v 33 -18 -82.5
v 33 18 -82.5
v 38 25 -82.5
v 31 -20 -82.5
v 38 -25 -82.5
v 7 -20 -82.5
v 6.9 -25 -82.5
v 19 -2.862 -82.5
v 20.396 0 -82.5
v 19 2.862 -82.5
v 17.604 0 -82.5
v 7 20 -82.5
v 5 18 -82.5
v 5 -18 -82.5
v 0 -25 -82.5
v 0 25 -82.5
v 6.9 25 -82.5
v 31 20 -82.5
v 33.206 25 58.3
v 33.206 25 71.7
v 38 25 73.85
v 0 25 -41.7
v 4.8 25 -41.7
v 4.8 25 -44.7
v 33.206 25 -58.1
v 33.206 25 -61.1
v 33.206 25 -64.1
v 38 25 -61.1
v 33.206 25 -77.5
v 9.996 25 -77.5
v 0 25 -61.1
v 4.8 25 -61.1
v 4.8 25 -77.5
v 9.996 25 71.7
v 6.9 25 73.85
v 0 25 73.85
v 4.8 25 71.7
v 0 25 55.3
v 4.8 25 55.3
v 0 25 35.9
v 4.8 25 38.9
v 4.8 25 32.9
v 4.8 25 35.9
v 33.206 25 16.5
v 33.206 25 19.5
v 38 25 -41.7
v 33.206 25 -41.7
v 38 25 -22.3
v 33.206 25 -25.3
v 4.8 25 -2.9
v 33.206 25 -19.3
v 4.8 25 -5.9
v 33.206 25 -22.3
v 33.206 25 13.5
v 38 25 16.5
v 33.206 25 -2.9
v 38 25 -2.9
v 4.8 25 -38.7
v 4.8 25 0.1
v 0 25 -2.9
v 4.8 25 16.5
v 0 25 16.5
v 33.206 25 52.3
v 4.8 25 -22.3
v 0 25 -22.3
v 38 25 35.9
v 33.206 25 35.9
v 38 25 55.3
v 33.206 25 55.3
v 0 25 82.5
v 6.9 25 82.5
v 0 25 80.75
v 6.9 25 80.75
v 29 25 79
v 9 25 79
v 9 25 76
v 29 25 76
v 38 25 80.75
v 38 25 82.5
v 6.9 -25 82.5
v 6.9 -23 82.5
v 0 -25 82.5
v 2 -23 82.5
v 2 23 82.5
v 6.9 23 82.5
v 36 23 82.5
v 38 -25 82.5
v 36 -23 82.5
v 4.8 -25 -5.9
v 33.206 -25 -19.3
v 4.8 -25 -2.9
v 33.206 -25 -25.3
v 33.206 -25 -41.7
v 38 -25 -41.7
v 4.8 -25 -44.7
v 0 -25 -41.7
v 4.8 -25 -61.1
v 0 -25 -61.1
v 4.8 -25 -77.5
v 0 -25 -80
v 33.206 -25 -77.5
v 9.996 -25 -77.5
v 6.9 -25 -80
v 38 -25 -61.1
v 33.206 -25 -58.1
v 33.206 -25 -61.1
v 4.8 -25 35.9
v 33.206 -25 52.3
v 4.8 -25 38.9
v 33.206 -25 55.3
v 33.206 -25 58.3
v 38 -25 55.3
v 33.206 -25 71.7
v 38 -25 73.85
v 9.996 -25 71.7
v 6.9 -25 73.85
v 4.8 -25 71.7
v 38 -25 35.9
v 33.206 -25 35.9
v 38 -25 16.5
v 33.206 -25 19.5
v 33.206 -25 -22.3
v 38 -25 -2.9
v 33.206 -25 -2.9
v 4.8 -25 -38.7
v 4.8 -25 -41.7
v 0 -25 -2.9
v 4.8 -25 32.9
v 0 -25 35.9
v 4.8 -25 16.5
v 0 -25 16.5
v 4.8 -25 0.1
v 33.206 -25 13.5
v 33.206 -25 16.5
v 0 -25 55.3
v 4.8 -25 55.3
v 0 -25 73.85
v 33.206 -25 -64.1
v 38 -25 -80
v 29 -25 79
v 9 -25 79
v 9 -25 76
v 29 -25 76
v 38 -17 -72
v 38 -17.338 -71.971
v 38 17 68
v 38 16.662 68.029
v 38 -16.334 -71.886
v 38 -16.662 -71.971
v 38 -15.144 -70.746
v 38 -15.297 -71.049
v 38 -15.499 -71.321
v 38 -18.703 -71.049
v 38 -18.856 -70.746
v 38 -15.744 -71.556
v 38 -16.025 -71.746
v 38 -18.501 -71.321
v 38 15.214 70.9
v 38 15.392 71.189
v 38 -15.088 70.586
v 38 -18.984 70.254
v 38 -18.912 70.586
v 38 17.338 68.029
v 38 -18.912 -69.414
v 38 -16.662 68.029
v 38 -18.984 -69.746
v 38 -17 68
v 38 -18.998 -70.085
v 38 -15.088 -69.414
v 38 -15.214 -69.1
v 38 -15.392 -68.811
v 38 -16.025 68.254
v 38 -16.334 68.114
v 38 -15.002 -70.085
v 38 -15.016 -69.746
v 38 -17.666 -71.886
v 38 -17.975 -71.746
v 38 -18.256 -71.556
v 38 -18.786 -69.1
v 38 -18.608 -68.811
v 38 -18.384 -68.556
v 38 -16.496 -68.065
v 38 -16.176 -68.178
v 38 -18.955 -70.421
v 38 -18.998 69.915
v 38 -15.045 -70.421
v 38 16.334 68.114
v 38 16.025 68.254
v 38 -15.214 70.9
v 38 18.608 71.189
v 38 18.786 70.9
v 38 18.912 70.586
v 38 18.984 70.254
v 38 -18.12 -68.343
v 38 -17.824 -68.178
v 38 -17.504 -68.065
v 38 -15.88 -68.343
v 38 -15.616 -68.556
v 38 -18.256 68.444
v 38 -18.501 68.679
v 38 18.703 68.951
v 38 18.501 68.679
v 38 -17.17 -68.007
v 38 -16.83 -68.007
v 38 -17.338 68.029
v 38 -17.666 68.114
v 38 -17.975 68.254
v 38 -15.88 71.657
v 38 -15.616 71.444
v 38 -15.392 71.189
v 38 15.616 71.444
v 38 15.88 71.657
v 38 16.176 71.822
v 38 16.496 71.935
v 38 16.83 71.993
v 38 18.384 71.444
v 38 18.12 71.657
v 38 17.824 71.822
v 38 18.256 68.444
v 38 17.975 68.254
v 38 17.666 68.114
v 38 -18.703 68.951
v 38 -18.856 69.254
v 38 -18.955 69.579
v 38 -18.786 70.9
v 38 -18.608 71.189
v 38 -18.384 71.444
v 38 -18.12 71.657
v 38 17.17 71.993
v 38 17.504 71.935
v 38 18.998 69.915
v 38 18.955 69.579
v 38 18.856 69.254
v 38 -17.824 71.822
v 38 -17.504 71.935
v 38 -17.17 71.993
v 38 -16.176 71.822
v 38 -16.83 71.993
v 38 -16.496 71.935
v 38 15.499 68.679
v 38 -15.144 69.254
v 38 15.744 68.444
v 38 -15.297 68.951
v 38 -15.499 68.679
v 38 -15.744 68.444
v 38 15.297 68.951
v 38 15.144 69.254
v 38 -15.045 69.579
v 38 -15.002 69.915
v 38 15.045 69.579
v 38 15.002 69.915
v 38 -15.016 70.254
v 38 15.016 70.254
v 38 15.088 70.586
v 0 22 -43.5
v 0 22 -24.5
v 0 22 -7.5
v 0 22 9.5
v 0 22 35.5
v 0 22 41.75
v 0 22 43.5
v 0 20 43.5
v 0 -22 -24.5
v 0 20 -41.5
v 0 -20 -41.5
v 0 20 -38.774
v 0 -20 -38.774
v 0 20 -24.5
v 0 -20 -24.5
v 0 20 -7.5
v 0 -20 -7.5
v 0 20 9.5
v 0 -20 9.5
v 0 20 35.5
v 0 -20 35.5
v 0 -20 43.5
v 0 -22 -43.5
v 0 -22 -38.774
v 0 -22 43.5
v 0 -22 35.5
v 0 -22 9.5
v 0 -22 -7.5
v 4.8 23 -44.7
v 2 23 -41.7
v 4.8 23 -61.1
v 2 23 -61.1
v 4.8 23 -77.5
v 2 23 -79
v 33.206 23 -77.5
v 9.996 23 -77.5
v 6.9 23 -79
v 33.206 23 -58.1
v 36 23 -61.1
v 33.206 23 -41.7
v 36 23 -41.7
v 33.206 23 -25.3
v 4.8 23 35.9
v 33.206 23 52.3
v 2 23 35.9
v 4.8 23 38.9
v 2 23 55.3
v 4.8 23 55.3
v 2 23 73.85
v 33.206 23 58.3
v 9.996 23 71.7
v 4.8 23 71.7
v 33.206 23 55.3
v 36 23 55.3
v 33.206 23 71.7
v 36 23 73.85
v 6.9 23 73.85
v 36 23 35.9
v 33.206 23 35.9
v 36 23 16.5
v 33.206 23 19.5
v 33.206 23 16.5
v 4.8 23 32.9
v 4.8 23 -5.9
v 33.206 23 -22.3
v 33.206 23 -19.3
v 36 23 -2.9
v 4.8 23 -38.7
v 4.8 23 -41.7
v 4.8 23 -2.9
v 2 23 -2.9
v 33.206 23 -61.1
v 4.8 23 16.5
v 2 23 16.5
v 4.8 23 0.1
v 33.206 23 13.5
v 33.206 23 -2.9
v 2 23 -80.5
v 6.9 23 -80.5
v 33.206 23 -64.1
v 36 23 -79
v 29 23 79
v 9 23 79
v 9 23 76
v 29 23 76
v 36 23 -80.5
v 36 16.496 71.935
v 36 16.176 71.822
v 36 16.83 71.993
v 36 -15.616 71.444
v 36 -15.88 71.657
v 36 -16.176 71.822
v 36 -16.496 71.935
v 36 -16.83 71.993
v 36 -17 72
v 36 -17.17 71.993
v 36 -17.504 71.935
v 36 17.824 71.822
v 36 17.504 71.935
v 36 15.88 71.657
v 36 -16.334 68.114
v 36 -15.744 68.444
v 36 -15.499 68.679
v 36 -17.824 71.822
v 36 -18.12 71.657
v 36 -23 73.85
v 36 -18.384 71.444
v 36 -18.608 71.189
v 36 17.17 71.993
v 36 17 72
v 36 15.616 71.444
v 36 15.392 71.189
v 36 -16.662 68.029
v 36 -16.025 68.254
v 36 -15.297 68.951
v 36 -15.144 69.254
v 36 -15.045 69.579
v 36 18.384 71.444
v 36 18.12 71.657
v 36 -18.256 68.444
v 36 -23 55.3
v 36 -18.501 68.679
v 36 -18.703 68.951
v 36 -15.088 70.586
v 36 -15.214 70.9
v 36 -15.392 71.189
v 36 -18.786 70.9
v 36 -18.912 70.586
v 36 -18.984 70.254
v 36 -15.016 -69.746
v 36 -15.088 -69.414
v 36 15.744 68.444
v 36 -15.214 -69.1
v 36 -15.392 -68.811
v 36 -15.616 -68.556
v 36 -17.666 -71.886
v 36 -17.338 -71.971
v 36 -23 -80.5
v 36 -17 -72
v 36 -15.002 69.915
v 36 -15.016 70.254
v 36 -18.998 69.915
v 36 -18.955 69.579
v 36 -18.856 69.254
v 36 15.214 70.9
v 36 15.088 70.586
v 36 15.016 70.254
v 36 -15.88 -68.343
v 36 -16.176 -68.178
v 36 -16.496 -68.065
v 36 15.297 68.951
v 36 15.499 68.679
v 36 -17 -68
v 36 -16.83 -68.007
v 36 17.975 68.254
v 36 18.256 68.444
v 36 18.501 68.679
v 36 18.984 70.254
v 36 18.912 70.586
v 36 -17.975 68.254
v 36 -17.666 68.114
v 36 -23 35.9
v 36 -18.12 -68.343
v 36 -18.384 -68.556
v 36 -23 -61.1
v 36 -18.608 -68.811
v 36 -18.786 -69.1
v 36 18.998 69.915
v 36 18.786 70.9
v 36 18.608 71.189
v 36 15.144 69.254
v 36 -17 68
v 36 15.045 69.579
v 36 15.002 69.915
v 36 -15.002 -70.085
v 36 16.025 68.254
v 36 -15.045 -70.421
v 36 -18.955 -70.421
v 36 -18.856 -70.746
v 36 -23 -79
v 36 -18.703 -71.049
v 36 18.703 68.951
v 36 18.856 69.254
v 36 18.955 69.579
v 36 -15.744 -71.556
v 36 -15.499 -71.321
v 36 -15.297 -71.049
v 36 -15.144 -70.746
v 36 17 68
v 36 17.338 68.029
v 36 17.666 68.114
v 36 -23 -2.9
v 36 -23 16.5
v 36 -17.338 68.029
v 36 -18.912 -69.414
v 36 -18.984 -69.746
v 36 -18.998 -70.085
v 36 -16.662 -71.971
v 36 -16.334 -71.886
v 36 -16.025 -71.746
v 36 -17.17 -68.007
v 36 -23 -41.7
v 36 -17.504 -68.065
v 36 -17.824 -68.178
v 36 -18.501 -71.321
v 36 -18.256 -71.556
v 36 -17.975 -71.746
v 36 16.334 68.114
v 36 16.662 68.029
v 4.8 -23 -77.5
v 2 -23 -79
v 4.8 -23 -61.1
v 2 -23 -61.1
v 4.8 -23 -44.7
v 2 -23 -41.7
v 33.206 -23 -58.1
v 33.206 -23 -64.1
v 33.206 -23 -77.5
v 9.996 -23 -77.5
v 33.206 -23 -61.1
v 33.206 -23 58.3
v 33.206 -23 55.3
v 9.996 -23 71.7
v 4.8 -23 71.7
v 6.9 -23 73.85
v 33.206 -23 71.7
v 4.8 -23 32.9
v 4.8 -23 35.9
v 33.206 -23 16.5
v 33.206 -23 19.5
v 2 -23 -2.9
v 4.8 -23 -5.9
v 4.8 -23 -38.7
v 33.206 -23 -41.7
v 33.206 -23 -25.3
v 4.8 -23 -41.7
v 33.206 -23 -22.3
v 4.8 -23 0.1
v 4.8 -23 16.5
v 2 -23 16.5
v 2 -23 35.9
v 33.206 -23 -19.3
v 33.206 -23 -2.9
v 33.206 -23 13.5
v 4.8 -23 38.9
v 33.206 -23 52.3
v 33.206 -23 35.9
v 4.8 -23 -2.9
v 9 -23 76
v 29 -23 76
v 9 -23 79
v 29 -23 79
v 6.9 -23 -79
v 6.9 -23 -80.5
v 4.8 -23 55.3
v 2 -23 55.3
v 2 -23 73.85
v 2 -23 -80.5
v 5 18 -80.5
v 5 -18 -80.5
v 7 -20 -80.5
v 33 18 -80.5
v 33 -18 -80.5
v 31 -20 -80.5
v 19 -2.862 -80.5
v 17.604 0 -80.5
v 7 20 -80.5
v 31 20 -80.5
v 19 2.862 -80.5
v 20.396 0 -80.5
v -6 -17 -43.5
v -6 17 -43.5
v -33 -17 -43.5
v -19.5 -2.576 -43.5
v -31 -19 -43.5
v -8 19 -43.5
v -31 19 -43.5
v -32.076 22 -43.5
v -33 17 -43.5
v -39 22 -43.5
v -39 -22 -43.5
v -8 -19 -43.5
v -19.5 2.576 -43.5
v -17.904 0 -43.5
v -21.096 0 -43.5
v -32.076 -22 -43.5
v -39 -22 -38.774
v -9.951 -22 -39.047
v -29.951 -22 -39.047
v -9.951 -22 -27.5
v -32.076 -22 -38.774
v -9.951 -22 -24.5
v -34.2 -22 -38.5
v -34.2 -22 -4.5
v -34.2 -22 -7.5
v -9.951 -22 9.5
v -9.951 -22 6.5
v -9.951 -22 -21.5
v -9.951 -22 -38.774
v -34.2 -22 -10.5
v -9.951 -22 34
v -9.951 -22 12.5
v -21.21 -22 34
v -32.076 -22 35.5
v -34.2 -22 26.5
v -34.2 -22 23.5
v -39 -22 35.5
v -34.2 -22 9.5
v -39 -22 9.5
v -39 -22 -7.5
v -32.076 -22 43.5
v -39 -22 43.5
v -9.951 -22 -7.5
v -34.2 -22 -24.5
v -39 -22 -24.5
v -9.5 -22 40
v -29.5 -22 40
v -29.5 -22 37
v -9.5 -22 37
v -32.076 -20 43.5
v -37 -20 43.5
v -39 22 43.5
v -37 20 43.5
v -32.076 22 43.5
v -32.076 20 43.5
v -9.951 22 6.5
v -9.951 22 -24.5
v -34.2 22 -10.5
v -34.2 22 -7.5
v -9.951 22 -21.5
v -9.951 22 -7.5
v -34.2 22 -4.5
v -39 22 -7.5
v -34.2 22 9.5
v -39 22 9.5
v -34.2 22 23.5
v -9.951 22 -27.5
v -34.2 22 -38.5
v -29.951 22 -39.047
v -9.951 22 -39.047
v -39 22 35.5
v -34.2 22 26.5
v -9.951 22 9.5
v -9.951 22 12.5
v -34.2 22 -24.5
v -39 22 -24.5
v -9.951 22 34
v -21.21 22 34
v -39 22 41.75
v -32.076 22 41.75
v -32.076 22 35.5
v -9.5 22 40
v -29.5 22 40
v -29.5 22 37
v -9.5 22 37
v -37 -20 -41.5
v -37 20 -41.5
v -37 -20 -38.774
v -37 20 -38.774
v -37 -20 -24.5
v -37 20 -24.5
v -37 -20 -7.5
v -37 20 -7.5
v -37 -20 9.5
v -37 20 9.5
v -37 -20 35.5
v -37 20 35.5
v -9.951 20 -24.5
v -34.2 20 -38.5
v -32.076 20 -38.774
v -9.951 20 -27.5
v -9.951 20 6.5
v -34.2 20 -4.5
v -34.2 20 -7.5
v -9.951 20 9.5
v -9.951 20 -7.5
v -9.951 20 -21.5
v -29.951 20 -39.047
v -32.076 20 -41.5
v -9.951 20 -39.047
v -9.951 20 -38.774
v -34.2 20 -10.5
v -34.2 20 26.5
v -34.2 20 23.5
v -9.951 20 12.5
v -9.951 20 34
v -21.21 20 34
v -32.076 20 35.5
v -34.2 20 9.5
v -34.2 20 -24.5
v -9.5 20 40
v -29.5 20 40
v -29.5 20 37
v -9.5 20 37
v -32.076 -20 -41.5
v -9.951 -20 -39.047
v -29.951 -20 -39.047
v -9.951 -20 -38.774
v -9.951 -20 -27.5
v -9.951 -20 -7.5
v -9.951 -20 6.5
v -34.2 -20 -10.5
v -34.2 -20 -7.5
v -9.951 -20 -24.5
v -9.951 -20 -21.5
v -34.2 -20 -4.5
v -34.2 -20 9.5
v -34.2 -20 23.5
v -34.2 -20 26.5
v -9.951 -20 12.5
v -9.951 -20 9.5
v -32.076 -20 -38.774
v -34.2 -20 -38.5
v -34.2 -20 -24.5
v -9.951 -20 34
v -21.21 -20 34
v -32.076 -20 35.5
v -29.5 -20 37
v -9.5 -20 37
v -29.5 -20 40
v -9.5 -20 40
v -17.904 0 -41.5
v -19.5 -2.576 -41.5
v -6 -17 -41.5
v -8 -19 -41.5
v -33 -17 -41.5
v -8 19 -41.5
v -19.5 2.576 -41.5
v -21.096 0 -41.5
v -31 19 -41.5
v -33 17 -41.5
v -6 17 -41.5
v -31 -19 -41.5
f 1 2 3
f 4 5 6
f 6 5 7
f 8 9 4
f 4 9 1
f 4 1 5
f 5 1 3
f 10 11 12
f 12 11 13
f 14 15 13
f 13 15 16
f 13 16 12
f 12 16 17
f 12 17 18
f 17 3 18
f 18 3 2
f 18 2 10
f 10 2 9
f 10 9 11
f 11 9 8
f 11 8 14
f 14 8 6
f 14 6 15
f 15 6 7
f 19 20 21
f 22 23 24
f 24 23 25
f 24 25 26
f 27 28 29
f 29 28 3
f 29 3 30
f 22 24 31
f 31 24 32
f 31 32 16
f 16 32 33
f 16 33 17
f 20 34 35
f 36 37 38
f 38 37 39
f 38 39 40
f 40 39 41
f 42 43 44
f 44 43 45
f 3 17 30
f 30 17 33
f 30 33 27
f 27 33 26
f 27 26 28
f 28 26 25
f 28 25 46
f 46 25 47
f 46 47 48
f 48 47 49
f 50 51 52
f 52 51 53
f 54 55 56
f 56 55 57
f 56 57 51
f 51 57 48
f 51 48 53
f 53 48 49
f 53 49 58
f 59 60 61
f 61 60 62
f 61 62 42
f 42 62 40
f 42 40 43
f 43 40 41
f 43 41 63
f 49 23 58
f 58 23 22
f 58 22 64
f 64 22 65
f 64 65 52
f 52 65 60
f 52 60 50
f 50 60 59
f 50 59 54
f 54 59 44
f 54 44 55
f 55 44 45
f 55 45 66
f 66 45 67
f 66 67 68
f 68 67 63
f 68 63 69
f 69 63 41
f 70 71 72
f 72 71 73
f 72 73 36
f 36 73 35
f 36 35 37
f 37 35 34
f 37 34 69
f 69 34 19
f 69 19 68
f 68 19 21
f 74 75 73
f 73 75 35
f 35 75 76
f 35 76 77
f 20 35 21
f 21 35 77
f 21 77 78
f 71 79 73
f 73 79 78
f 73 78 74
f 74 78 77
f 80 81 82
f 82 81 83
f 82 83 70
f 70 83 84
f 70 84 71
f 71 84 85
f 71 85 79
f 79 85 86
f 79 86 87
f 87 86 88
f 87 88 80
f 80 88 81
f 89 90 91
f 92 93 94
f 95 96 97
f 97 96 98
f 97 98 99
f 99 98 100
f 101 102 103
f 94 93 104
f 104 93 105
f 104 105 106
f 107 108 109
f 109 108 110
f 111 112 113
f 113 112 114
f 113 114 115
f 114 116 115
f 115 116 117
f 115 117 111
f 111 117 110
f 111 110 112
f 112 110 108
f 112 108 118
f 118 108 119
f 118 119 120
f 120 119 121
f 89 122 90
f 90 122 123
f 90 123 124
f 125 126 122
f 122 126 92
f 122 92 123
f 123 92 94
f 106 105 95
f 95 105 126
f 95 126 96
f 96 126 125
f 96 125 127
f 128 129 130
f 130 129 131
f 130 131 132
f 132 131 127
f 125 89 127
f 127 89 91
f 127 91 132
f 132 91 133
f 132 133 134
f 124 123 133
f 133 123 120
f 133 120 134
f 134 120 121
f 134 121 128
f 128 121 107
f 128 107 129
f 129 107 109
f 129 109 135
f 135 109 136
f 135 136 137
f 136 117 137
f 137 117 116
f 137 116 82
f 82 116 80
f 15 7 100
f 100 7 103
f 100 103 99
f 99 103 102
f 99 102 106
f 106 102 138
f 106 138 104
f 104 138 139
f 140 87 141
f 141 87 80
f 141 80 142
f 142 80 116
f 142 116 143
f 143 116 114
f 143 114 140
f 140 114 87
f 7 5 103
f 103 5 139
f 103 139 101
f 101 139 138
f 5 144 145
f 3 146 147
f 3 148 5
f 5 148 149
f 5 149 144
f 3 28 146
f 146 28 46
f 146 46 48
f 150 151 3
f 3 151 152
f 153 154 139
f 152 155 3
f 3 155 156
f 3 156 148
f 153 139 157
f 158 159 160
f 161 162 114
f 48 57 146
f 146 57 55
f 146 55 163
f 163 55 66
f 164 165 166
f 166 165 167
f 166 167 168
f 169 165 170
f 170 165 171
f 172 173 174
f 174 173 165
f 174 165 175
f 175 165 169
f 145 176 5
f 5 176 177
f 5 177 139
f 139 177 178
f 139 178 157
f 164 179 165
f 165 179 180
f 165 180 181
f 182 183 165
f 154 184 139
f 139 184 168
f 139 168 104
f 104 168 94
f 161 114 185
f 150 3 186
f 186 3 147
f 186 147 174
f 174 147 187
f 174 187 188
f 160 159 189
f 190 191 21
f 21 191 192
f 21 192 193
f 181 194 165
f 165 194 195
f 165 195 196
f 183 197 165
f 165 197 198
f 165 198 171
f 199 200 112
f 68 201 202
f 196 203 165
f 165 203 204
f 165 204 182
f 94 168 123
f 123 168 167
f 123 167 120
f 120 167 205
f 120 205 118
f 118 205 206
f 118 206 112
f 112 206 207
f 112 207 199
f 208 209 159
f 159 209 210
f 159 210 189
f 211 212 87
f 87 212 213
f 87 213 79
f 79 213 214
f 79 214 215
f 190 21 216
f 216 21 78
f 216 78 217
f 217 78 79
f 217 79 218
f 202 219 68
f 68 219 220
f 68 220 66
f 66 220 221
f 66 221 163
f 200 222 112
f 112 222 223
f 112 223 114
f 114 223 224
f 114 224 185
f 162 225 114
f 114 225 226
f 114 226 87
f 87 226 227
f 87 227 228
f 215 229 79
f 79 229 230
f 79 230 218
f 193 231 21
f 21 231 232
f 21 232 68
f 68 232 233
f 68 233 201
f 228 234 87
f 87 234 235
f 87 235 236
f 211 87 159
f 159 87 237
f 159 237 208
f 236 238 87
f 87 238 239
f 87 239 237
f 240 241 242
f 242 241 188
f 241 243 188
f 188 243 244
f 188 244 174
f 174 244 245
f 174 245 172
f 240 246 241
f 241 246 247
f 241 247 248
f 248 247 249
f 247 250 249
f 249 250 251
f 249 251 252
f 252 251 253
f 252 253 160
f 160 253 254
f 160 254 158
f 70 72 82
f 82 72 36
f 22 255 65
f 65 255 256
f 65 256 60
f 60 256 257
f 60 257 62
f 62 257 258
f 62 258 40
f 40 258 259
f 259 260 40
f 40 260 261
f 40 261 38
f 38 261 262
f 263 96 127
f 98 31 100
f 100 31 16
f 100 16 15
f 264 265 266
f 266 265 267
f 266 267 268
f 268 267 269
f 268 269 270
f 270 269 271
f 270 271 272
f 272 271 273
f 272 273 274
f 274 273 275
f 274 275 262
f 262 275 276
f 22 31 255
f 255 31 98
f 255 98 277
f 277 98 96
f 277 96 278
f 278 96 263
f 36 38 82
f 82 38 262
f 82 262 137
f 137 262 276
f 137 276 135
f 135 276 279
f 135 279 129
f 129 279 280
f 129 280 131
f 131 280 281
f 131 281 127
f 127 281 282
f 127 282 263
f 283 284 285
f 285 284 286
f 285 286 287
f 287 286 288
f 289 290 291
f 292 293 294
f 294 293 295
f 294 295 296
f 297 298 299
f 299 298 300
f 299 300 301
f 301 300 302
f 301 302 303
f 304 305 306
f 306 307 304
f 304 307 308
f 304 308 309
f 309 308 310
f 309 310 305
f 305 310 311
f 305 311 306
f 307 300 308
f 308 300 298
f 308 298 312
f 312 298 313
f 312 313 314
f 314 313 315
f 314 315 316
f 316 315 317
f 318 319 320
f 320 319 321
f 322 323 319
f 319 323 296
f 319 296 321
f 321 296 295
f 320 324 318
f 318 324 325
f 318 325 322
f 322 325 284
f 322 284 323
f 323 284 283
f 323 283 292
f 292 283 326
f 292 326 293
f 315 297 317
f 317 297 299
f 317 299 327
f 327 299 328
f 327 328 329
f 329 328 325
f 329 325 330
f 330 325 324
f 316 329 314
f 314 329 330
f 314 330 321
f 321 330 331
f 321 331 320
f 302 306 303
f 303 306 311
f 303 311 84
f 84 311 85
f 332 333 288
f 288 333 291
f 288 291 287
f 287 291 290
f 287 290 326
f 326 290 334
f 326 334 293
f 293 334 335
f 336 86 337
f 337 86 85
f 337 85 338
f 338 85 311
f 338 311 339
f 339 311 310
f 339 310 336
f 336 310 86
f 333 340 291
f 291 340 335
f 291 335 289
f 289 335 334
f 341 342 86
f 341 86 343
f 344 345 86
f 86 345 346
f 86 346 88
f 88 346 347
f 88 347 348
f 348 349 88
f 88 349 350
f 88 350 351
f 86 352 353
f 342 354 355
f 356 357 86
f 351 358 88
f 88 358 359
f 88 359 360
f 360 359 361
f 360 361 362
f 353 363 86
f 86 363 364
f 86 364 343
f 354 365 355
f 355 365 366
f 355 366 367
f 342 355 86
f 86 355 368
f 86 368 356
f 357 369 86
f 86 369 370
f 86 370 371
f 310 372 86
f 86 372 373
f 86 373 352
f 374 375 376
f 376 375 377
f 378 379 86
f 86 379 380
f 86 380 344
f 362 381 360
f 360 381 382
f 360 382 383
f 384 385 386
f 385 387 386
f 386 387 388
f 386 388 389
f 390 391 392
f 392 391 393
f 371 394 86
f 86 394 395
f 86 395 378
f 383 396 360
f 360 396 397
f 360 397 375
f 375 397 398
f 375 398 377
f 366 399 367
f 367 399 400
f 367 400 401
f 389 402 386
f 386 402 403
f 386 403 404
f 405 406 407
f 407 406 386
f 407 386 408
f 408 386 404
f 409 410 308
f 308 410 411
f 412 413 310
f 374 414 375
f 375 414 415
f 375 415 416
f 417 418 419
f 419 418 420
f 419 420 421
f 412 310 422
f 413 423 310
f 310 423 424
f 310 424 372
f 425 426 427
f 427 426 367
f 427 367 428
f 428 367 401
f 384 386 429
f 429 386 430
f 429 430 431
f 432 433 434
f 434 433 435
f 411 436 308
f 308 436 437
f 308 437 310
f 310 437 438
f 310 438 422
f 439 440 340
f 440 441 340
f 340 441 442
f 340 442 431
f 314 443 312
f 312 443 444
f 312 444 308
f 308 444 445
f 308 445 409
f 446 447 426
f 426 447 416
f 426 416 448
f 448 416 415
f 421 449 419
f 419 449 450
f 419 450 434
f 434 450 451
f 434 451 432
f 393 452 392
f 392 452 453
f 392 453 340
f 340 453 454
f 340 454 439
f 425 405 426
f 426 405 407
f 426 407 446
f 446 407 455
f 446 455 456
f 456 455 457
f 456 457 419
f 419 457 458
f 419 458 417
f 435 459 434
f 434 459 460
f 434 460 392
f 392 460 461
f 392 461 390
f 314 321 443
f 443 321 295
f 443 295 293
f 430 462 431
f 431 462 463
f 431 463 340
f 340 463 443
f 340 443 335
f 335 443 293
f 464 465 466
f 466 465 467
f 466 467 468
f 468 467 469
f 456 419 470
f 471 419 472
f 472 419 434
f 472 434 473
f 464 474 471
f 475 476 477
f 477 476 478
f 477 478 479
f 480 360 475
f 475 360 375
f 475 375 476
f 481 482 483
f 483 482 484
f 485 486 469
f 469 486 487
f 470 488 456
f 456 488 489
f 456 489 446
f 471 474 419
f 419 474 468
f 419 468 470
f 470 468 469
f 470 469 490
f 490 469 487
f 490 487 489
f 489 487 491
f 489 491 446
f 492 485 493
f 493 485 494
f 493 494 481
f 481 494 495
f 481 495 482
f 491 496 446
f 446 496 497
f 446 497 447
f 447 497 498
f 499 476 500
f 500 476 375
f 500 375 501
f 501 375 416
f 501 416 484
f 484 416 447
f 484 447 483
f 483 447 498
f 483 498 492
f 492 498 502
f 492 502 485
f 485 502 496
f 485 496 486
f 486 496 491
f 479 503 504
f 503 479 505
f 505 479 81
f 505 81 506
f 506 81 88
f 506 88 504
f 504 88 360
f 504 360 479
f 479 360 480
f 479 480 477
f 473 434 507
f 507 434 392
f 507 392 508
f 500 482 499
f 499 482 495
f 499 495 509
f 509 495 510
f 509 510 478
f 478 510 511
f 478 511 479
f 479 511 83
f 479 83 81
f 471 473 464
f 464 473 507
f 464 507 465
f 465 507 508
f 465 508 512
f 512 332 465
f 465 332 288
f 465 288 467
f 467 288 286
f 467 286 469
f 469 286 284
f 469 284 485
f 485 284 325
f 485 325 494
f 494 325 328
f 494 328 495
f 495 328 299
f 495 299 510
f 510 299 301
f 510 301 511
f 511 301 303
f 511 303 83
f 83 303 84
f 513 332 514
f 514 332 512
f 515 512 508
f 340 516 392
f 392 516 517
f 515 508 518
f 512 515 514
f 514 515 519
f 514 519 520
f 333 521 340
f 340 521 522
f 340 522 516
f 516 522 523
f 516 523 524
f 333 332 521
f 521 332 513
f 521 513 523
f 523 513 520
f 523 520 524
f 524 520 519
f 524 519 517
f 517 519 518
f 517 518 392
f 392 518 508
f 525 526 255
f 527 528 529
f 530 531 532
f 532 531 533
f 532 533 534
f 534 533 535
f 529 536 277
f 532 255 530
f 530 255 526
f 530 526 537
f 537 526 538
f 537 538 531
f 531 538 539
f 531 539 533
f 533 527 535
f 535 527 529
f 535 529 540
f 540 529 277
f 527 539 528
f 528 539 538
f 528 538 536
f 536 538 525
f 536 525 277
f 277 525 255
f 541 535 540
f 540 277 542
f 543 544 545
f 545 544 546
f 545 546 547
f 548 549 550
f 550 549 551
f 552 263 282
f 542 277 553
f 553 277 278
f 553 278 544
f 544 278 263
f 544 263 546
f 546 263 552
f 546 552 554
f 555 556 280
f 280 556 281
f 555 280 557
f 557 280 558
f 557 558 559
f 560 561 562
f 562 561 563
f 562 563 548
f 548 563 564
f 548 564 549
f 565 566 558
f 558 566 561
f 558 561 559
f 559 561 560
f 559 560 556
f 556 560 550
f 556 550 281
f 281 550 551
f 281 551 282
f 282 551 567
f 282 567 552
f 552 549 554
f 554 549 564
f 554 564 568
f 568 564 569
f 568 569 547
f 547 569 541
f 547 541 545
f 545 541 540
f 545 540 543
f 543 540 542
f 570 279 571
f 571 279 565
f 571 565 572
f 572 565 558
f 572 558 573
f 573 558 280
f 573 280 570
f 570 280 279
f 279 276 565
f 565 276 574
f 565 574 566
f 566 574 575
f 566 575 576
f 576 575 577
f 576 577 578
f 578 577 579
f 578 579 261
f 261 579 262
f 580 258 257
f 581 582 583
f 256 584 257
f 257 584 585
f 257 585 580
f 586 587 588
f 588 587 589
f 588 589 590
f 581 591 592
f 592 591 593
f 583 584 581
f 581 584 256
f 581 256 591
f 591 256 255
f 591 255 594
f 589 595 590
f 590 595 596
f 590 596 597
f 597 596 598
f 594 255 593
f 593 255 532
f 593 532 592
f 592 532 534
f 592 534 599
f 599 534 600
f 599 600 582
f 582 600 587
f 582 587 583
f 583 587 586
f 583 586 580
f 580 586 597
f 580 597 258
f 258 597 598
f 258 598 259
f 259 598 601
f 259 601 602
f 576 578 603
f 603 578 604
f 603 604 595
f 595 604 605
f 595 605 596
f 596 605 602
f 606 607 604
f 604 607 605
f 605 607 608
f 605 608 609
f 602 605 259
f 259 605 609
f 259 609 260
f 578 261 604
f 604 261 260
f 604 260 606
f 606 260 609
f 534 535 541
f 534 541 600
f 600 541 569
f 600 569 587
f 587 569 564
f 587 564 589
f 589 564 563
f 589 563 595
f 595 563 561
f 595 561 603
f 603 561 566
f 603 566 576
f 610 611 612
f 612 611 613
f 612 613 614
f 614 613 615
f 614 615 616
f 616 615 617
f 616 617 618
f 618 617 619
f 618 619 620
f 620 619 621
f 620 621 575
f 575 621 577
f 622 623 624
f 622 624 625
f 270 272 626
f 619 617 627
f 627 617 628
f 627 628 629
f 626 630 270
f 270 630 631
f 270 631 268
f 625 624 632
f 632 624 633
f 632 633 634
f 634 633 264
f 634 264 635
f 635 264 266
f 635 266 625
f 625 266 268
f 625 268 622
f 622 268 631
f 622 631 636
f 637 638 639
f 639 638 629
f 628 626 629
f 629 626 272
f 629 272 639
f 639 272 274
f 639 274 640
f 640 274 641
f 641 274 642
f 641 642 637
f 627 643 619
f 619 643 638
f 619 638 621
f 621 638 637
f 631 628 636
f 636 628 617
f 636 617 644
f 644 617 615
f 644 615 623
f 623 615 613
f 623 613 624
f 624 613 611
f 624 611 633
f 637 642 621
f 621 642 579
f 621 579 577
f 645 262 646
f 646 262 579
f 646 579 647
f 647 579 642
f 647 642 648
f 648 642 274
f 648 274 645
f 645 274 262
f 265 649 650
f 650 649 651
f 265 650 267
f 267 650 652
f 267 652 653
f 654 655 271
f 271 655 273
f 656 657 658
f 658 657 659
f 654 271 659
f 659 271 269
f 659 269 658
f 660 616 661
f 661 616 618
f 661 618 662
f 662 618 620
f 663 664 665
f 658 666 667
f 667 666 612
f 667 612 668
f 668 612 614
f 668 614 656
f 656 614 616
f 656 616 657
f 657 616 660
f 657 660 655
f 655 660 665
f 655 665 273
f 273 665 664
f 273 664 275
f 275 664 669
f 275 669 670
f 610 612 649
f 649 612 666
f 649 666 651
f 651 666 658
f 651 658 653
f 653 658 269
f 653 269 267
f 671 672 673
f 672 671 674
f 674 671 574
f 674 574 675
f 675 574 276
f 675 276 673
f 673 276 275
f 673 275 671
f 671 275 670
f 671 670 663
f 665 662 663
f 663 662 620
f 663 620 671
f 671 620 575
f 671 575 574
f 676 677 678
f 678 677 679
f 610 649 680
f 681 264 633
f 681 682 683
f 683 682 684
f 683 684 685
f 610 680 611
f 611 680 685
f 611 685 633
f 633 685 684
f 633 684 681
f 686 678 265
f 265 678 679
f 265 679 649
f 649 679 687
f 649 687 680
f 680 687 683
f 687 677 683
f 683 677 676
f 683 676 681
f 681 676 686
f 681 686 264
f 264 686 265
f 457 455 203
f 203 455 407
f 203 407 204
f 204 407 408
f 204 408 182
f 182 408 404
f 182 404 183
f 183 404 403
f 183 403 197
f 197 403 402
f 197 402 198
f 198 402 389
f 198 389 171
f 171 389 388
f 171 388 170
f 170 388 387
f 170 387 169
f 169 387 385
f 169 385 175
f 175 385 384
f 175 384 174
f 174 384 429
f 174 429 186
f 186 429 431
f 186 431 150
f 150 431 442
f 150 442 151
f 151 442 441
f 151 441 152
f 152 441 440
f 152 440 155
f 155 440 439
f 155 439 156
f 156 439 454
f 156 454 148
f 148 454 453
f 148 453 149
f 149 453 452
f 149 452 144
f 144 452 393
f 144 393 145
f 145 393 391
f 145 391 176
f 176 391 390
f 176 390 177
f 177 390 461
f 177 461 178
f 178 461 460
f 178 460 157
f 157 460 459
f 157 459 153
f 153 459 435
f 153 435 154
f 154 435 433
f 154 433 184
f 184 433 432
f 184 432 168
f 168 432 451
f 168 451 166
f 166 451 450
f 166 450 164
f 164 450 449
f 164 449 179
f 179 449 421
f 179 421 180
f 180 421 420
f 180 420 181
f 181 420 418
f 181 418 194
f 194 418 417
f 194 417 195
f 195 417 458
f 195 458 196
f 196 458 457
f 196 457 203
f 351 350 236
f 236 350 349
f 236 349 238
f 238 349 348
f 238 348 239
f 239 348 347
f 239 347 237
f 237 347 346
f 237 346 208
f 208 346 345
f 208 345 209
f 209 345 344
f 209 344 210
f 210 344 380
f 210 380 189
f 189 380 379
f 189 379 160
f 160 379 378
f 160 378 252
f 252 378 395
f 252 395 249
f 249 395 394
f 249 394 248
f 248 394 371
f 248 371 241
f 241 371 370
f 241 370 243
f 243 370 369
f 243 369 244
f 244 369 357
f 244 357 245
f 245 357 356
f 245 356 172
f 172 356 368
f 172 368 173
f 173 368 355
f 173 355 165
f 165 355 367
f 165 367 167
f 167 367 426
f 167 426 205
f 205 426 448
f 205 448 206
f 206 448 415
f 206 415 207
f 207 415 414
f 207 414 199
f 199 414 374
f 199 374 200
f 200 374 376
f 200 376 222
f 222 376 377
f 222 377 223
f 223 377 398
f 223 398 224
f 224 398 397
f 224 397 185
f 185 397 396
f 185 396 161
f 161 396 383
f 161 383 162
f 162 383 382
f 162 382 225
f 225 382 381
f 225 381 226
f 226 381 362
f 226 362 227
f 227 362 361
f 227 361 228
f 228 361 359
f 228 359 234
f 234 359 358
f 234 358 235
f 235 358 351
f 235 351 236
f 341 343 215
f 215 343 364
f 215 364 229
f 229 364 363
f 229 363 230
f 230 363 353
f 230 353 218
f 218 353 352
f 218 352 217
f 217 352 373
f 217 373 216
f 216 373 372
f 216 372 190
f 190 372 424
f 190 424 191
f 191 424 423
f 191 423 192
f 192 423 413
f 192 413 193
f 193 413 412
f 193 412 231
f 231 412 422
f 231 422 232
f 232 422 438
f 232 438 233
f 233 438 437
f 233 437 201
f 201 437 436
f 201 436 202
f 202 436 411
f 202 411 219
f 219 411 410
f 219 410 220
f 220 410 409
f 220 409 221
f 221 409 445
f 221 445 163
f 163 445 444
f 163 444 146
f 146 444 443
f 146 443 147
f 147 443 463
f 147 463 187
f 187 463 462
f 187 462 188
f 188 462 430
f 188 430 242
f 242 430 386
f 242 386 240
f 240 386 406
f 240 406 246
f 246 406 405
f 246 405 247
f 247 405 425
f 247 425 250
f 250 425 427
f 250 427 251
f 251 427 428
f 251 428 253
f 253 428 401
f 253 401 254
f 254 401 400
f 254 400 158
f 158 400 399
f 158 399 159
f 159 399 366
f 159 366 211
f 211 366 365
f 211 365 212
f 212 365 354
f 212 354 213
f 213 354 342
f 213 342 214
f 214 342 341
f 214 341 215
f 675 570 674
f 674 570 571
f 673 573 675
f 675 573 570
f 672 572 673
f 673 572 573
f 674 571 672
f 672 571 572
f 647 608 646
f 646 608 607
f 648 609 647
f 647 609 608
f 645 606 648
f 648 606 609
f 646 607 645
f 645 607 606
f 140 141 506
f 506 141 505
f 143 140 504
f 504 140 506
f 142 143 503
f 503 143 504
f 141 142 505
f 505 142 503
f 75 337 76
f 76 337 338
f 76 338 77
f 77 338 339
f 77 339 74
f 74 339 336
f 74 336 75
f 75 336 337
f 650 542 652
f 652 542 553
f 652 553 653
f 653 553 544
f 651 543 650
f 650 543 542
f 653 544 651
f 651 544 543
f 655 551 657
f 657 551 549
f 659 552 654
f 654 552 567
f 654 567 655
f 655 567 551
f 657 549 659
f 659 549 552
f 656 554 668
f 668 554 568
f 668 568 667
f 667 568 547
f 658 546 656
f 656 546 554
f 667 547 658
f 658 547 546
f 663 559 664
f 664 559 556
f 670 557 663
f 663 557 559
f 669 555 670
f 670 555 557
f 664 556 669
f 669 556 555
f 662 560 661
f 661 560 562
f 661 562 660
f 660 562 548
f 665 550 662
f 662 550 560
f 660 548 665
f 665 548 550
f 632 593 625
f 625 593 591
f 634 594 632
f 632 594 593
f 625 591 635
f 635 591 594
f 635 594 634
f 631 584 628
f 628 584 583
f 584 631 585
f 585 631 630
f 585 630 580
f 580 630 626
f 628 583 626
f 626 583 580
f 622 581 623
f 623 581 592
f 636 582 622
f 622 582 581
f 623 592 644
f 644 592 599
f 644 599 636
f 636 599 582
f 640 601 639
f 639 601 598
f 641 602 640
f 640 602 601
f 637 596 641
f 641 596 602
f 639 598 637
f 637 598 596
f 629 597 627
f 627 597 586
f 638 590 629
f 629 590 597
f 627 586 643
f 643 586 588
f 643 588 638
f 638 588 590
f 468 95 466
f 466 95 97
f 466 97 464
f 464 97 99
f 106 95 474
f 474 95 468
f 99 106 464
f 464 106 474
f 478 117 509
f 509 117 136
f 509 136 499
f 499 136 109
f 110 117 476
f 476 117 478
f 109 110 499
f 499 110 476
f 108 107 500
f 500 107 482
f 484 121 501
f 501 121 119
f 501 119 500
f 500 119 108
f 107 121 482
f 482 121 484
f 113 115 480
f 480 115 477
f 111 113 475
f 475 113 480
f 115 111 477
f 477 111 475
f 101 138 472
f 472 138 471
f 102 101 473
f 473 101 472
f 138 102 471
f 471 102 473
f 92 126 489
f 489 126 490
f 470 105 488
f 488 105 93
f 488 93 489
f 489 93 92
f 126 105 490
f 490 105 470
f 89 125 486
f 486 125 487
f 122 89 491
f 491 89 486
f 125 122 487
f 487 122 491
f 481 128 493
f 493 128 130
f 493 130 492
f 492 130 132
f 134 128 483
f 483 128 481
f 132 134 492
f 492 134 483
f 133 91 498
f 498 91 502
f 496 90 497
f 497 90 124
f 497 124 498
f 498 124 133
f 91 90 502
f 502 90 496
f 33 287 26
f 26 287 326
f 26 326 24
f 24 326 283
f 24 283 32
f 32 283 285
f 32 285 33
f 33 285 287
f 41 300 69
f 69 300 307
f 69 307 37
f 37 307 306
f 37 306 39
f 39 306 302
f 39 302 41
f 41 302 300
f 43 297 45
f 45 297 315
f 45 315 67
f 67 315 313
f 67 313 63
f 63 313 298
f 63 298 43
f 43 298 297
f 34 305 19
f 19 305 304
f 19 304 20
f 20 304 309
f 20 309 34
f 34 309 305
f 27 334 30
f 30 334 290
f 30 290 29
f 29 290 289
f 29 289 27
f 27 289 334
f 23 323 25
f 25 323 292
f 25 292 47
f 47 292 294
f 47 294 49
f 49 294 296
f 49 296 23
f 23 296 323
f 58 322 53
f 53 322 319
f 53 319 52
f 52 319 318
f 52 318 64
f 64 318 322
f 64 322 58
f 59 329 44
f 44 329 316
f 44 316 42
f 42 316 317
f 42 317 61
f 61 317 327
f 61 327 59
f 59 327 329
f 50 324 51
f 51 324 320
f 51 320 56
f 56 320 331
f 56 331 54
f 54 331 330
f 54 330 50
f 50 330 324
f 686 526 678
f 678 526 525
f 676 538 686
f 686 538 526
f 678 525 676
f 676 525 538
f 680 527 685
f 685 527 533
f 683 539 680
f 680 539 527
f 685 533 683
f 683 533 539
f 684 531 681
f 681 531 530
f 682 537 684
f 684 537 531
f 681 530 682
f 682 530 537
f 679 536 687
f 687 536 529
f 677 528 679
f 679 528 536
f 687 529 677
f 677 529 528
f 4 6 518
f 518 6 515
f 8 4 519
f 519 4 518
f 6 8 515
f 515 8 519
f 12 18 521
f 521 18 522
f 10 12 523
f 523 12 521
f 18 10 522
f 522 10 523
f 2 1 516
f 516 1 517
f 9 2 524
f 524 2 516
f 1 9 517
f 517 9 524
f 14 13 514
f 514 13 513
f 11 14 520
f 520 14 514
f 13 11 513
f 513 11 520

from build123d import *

# Parameters (mm, degrees)
BODYSKETCH_W              = 165
BODYSKETCH_H              = 50
BODY_DEPTH                = 38
HOLESKETCH_W              = 34
HOLESKETCH_H              = 46
HOLE_DEPTH                = 163
SECONDBATTERYSKETCH_W     = 87
SECONDBATTERYSKETCH_H     = 44
SECONDBATTERY_DEPTH       = 39
SECONDBATTERYHOLESKETCH_W = 37
SECONDBATTERYHOLESKETCH_H = 40
SECONDBATTERYHOLE_DEPTH   = 85
CONNECTORSKETCH_R         = 2
CUT_EXTRUDE3_DEPTH        = 15
STRAPSKETCH_W             = 20
STRAPSKETCH_H             = 3
CUT_EXTRUDE4_DEPTH        = 51
CUT_EXTRUDE5_DEPTH        = 51
CUT_EXTRUDE6_DEPTH        = 166


with BuildPart() as part:
    # BodySketch → Body (new body)
    with BuildSketch(Plane(origin=(0, 0, 0), x_dir=(0, 0, -1), z_dir=(1, 0, 0))):
        Rectangle(BODYSKETCH_W, BODYSKETCH_H)
    extrude(amount=BODY_DEPTH)

    # HoleSketch → Hole (cut)
    with BuildSketch(Plane.XY.offset(82.5)):
        with Locations((19, 0)):
            Rectangle(HOLESKETCH_W, HOLESKETCH_H)
    extrude(amount=-HOLE_DEPTH, mode=Mode.SUBTRACT)

    # SecondBatterySketch → SecondBattery (add)
    with BuildSketch(Plane.ZY):
        Rectangle(SECONDBATTERYSKETCH_W, SECONDBATTERYSKETCH_H)
    extrude(amount=SECONDBATTERY_DEPTH)

    # SecondBatteryHoleSketch → SecondBatteryHole (cut)
    with BuildSketch(Plane.XY.offset(43.5)):
        with Locations((-18.5, 0)):
            Rectangle(SECONDBATTERYHOLESKETCH_W, SECONDBATTERYHOLESKETCH_H)
    extrude(amount=-SECONDBATTERYHOLE_DEPTH, mode=Mode.SUBTRACT)

    # ConnectorSketch → Cut-Extrude3 (cut)
    with BuildSketch(Plane(origin=(38, 0, 0), x_dir=(0, 0, -1), z_dir=(1, 0, 0))):
        with Locations((-70, 17)):
            Circle(CONNECTORSKETCH_R)
        with Locations((-70, -17)):
            Circle(CONNECTORSKETCH_R)
        with Locations((70, -17)):
            Circle(CONNECTORSKETCH_R)
    extrude(amount=-CUT_EXTRUDE3_DEPTH, mode=Mode.SUBTRACT)

    # StrapSketch → Cut-Extrude4 (cut, through all)
    with BuildSketch(Plane(origin=(0, 25, 0), x_dir=(1, 0, 0), z_dir=(0, 1, 0))):
        with Locations((19, -77.5)):
            Rectangle(STRAPSKETCH_W, STRAPSKETCH_H)
        with Locations((-19.5, -38.5)):
            Rectangle(STRAPSKETCH_W, STRAPSKETCH_H)
    extrude(amount=-CUT_EXTRUDE4_DEPTH, mode=Mode.SUBTRACT)

    # WeightReduction → Cut-Extrude5 (cut, through all)
    with BuildSketch(Plane(origin=(0, 25, 0), x_dir=(1, 0, 0), z_dir=(0, 1, 0))):
        Polygon((4.8, 77.5), (4.8, 44.7), (33.205633244, 61.1), align=None)
        Polygon((33.205633244, -19.5), (33.205633244, -52.3), (4.8, -35.9), align=None)
        Polygon((33.205633244, 58.1), (33.205633244, 25.3), (4.8, 41.7), align=None)
        Polygon((4.8, 38.7), (4.8, 5.9), (33.205633244, 22.3), align=None)
        Polygon((33.205633244, 19.3), (33.205633244, -13.5), (4.8, 2.9), align=None)
        Polygon((4.8, -0.1), (4.8, -32.9), (33.205633244, -16.5), align=None)
        Polygon((4.8, -38.9), (4.8, -71.7), (33.205633244, -55.3), align=None)
        Polygon((33.205633244, -58.3), (33.205633244, -71.7), (9.996152423, -71.7), align=None)
        Polygon((33.205633244, 64.1), (33.205633244, 77.5), (9.996152423, 77.5), align=None)
        Polygon((-34.2, 38.5), (-34.2, 10.5), (-9.951288694, 24.5), align=None)
        Polygon((-9.951288694, 21.5), (-9.951288694, -6.5), (-34.2, 7.5), align=None)
        Polygon((-34.2, 4.5), (-34.2, -23.5), (-9.951288694, -9.5), align=None)
        Polygon((-34.2, -26.5), (-9.951288694, -12.5), (-9.951288694, -34), (-21.209618943, -34), align=None)
        Polygon((-9.951288694, 27.5), (-9.951288694, 39.047005384), (-29.951288694, 39.047005384), align=None)
    extrude(amount=-CUT_EXTRUDE5_DEPTH, mode=Mode.SUBTRACT)

    # weightCut → Cut-Extrude6 (cut, through all)
    with BuildSketch(Plane(origin=(0, 0, -82.5), x_dir=(-1, 0, 0), z_dir=(0, 0, -1))):
        Polygon((-31, -20), (-19, -2.862223919), (-7, -20), align=None)
        Polygon((-33, -18), (-20.396264312, 0), (-33, 18), align=None)
        Polygon((-31, 20), (-19, 2.862223919), (-7, 20), align=None)
        Polygon((-5, 18), (-17.603735688, 0), (-5, -18), align=None)
        Polygon((8, -19), (19.5, -2.576297922), (31, -19), align=None)
        Polygon((6, -17), (17.90352815, 0), (6, 17), align=None)
        Polygon((33, -17), (21.09647185, 0), (33, 17), align=None)
        Polygon((8, 19), (19.5, 2.576297922), (31, 19), align=None)
    extrude(amount=-CUT_EXTRUDE6_DEPTH, mode=Mode.SUBTRACT)


solid = part.part
